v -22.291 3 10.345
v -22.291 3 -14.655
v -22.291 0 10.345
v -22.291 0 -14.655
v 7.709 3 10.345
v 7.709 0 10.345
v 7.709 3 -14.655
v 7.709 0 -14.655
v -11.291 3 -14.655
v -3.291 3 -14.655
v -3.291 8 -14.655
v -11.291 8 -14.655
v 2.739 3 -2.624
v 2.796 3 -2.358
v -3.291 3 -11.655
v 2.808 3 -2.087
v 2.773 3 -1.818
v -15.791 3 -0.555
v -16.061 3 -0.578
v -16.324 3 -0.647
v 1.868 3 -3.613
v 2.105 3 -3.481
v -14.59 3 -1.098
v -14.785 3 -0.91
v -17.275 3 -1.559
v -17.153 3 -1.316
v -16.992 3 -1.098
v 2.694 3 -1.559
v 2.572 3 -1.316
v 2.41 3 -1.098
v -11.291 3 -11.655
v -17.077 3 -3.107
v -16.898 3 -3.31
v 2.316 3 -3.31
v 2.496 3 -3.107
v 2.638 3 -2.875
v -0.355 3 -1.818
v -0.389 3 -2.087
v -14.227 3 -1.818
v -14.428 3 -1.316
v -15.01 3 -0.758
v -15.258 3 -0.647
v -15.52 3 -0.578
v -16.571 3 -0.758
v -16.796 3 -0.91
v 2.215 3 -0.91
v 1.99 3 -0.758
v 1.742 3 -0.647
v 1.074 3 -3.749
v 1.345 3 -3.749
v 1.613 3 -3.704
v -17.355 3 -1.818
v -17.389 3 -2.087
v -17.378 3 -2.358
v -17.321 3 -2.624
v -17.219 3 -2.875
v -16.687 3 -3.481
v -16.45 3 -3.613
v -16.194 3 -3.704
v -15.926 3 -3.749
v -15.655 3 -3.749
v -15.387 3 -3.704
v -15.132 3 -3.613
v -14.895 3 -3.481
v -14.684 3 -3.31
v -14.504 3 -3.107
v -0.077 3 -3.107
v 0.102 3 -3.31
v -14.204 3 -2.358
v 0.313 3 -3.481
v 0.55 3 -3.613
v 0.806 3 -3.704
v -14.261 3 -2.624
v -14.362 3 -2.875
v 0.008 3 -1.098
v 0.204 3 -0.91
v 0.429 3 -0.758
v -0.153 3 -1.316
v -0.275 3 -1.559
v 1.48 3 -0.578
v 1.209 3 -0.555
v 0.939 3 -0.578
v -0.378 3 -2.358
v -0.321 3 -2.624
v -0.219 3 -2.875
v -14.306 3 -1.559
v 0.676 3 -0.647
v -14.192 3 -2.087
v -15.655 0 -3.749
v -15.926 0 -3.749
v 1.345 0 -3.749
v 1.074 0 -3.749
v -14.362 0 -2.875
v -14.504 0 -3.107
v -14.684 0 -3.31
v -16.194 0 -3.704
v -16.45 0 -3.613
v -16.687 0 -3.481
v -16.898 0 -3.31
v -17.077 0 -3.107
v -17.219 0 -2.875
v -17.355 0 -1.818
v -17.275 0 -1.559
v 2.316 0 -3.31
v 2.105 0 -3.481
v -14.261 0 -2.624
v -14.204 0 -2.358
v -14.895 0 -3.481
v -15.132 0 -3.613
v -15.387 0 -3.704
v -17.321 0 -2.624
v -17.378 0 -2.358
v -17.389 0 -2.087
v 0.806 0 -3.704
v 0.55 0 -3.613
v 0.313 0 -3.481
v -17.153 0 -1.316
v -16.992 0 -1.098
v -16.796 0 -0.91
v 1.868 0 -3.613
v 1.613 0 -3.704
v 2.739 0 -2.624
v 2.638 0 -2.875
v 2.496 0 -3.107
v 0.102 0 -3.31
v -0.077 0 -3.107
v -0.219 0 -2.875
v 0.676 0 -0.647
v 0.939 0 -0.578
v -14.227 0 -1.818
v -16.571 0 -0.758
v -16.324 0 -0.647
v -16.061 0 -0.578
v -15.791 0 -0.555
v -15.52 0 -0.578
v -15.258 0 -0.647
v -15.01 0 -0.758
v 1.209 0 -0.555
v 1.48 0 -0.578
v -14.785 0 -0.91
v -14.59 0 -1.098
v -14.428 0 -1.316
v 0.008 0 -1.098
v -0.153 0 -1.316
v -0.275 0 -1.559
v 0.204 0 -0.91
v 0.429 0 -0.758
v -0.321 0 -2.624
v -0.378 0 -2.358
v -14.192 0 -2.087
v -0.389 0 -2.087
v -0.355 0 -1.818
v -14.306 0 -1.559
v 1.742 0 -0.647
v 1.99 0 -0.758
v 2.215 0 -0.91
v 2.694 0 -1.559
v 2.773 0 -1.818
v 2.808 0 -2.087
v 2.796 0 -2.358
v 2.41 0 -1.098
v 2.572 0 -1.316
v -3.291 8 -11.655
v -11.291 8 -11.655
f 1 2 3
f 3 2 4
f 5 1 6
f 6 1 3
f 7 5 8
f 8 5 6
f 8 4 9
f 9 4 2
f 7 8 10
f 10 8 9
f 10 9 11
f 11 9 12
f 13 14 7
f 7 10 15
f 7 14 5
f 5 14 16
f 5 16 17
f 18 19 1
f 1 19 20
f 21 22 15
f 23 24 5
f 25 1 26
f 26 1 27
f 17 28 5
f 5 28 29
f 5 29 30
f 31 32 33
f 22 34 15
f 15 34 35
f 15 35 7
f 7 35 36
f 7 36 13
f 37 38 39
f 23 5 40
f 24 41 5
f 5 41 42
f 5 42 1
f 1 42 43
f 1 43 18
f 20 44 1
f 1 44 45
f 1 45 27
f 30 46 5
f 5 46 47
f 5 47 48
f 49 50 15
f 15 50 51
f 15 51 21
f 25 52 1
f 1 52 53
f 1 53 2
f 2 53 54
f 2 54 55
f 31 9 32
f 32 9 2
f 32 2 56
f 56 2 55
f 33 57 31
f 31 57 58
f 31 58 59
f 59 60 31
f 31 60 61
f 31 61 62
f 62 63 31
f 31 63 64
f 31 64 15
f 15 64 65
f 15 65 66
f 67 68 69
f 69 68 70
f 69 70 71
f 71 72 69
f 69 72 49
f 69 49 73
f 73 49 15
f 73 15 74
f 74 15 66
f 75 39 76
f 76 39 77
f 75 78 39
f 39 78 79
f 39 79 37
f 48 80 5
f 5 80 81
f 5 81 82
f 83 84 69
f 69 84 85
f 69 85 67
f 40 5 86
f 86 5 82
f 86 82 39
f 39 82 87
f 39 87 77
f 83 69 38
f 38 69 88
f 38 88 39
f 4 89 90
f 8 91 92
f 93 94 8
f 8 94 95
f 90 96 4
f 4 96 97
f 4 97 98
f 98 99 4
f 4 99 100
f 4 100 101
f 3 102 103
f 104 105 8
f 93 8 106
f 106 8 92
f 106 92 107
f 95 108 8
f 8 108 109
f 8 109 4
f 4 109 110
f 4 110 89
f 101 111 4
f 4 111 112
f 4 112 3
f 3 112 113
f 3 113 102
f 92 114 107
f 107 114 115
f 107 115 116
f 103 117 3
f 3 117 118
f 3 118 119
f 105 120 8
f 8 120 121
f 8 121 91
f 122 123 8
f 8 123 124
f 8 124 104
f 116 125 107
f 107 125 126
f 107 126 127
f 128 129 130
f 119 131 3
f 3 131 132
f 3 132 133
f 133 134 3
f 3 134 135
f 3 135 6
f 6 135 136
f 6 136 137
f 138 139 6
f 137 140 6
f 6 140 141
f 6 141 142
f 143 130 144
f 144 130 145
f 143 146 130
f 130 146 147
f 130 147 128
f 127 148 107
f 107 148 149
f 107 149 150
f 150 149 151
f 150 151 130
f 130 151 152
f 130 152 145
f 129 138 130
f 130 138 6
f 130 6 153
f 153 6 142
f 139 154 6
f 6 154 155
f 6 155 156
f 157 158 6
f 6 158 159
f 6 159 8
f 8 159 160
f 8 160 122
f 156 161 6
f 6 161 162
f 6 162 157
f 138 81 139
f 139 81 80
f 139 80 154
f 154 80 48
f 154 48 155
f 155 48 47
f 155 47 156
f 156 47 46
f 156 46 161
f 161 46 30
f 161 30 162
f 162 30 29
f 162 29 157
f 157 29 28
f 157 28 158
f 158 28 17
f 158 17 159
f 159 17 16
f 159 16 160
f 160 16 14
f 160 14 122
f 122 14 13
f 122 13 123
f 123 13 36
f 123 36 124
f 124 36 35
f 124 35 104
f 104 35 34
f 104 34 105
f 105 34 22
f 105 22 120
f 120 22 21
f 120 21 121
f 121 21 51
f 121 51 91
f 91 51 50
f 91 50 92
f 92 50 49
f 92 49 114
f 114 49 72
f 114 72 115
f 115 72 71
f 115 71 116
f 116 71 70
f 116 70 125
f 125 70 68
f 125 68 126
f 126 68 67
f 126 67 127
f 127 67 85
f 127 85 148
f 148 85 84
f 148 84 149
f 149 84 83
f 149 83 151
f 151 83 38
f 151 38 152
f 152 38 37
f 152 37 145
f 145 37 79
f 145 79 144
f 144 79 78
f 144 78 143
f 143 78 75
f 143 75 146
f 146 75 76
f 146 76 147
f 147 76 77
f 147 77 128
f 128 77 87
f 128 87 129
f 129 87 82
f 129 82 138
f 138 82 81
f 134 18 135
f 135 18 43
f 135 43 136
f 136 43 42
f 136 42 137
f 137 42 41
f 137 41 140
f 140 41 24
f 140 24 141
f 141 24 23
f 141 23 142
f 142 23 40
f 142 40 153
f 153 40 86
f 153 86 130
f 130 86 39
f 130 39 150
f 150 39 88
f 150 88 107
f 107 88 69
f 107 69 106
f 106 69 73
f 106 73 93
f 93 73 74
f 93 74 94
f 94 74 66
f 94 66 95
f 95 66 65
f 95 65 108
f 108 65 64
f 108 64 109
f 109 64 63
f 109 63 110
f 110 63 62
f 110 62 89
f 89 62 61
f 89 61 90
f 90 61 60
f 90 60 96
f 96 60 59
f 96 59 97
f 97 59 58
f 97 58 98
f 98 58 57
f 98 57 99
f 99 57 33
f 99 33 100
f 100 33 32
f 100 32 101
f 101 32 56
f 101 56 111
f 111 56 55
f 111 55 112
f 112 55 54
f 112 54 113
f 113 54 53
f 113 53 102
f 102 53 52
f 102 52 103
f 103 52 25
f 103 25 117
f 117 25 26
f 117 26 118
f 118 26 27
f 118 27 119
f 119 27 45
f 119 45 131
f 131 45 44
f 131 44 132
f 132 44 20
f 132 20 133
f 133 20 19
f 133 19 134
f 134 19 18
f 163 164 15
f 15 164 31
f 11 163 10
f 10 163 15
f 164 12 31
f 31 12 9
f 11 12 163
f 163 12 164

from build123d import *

# Parameters (mm, degrees)
SKETCH1_W           = 30
SKETCH1_H           = 25
BOSS_EXTRUDE1_DEPTH = 3
SKETCH2_R           = 1.6
CUT_EXTRUDE2_DEPTH  = 10
SKETCH3_W           = 8
SKETCH3_H           = 3
BOSS_EXTRUDE2_DEPTH = 5


with BuildPart() as part:
    # Sketch1 → Boss-Extrude1 (new body)
    with BuildSketch(Plane(origin=(0, 0, 0), x_dir=(1, 0, 0), z_dir=(0, 1, 0))):
        with Locations((-7.290640394, 2.155172414)):
            Rectangle(SKETCH1_W, SKETCH1_H)
    extrude(amount=BOSS_EXTRUDE1_DEPTH)

    # Sketch2 → Cut-Extrude2 (cut)
    with BuildSketch(Plane(origin=(0, 3, 0), x_dir=(1, 0, 0), z_dir=(0, 1, 0))):
        with Locations(Location((-15.790640394, 2.155172414, 0), (0, 0, 270))):
            Circle(SKETCH2_R)
        with Locations(Location((1.209359606, 2.155172414, 0), (0, 0, 270))):
            Circle(SKETCH2_R)
    extrude(amount=-CUT_EXTRUDE2_DEPTH, mode=Mode.SUBTRACT)

    # Sketch3 → Boss-Extrude2 (add)
    with BuildSketch(Plane(origin=(0, 3, 0), x_dir=(1, 0, 0), z_dir=(0, 1, 0))):
        with Locations((-7.290640394, 13.155172414)):
            Rectangle(SKETCH3_W, SKETCH3_H)
    extrude(amount=BOSS_EXTRUDE2_DEPTH)


solid = part.part
